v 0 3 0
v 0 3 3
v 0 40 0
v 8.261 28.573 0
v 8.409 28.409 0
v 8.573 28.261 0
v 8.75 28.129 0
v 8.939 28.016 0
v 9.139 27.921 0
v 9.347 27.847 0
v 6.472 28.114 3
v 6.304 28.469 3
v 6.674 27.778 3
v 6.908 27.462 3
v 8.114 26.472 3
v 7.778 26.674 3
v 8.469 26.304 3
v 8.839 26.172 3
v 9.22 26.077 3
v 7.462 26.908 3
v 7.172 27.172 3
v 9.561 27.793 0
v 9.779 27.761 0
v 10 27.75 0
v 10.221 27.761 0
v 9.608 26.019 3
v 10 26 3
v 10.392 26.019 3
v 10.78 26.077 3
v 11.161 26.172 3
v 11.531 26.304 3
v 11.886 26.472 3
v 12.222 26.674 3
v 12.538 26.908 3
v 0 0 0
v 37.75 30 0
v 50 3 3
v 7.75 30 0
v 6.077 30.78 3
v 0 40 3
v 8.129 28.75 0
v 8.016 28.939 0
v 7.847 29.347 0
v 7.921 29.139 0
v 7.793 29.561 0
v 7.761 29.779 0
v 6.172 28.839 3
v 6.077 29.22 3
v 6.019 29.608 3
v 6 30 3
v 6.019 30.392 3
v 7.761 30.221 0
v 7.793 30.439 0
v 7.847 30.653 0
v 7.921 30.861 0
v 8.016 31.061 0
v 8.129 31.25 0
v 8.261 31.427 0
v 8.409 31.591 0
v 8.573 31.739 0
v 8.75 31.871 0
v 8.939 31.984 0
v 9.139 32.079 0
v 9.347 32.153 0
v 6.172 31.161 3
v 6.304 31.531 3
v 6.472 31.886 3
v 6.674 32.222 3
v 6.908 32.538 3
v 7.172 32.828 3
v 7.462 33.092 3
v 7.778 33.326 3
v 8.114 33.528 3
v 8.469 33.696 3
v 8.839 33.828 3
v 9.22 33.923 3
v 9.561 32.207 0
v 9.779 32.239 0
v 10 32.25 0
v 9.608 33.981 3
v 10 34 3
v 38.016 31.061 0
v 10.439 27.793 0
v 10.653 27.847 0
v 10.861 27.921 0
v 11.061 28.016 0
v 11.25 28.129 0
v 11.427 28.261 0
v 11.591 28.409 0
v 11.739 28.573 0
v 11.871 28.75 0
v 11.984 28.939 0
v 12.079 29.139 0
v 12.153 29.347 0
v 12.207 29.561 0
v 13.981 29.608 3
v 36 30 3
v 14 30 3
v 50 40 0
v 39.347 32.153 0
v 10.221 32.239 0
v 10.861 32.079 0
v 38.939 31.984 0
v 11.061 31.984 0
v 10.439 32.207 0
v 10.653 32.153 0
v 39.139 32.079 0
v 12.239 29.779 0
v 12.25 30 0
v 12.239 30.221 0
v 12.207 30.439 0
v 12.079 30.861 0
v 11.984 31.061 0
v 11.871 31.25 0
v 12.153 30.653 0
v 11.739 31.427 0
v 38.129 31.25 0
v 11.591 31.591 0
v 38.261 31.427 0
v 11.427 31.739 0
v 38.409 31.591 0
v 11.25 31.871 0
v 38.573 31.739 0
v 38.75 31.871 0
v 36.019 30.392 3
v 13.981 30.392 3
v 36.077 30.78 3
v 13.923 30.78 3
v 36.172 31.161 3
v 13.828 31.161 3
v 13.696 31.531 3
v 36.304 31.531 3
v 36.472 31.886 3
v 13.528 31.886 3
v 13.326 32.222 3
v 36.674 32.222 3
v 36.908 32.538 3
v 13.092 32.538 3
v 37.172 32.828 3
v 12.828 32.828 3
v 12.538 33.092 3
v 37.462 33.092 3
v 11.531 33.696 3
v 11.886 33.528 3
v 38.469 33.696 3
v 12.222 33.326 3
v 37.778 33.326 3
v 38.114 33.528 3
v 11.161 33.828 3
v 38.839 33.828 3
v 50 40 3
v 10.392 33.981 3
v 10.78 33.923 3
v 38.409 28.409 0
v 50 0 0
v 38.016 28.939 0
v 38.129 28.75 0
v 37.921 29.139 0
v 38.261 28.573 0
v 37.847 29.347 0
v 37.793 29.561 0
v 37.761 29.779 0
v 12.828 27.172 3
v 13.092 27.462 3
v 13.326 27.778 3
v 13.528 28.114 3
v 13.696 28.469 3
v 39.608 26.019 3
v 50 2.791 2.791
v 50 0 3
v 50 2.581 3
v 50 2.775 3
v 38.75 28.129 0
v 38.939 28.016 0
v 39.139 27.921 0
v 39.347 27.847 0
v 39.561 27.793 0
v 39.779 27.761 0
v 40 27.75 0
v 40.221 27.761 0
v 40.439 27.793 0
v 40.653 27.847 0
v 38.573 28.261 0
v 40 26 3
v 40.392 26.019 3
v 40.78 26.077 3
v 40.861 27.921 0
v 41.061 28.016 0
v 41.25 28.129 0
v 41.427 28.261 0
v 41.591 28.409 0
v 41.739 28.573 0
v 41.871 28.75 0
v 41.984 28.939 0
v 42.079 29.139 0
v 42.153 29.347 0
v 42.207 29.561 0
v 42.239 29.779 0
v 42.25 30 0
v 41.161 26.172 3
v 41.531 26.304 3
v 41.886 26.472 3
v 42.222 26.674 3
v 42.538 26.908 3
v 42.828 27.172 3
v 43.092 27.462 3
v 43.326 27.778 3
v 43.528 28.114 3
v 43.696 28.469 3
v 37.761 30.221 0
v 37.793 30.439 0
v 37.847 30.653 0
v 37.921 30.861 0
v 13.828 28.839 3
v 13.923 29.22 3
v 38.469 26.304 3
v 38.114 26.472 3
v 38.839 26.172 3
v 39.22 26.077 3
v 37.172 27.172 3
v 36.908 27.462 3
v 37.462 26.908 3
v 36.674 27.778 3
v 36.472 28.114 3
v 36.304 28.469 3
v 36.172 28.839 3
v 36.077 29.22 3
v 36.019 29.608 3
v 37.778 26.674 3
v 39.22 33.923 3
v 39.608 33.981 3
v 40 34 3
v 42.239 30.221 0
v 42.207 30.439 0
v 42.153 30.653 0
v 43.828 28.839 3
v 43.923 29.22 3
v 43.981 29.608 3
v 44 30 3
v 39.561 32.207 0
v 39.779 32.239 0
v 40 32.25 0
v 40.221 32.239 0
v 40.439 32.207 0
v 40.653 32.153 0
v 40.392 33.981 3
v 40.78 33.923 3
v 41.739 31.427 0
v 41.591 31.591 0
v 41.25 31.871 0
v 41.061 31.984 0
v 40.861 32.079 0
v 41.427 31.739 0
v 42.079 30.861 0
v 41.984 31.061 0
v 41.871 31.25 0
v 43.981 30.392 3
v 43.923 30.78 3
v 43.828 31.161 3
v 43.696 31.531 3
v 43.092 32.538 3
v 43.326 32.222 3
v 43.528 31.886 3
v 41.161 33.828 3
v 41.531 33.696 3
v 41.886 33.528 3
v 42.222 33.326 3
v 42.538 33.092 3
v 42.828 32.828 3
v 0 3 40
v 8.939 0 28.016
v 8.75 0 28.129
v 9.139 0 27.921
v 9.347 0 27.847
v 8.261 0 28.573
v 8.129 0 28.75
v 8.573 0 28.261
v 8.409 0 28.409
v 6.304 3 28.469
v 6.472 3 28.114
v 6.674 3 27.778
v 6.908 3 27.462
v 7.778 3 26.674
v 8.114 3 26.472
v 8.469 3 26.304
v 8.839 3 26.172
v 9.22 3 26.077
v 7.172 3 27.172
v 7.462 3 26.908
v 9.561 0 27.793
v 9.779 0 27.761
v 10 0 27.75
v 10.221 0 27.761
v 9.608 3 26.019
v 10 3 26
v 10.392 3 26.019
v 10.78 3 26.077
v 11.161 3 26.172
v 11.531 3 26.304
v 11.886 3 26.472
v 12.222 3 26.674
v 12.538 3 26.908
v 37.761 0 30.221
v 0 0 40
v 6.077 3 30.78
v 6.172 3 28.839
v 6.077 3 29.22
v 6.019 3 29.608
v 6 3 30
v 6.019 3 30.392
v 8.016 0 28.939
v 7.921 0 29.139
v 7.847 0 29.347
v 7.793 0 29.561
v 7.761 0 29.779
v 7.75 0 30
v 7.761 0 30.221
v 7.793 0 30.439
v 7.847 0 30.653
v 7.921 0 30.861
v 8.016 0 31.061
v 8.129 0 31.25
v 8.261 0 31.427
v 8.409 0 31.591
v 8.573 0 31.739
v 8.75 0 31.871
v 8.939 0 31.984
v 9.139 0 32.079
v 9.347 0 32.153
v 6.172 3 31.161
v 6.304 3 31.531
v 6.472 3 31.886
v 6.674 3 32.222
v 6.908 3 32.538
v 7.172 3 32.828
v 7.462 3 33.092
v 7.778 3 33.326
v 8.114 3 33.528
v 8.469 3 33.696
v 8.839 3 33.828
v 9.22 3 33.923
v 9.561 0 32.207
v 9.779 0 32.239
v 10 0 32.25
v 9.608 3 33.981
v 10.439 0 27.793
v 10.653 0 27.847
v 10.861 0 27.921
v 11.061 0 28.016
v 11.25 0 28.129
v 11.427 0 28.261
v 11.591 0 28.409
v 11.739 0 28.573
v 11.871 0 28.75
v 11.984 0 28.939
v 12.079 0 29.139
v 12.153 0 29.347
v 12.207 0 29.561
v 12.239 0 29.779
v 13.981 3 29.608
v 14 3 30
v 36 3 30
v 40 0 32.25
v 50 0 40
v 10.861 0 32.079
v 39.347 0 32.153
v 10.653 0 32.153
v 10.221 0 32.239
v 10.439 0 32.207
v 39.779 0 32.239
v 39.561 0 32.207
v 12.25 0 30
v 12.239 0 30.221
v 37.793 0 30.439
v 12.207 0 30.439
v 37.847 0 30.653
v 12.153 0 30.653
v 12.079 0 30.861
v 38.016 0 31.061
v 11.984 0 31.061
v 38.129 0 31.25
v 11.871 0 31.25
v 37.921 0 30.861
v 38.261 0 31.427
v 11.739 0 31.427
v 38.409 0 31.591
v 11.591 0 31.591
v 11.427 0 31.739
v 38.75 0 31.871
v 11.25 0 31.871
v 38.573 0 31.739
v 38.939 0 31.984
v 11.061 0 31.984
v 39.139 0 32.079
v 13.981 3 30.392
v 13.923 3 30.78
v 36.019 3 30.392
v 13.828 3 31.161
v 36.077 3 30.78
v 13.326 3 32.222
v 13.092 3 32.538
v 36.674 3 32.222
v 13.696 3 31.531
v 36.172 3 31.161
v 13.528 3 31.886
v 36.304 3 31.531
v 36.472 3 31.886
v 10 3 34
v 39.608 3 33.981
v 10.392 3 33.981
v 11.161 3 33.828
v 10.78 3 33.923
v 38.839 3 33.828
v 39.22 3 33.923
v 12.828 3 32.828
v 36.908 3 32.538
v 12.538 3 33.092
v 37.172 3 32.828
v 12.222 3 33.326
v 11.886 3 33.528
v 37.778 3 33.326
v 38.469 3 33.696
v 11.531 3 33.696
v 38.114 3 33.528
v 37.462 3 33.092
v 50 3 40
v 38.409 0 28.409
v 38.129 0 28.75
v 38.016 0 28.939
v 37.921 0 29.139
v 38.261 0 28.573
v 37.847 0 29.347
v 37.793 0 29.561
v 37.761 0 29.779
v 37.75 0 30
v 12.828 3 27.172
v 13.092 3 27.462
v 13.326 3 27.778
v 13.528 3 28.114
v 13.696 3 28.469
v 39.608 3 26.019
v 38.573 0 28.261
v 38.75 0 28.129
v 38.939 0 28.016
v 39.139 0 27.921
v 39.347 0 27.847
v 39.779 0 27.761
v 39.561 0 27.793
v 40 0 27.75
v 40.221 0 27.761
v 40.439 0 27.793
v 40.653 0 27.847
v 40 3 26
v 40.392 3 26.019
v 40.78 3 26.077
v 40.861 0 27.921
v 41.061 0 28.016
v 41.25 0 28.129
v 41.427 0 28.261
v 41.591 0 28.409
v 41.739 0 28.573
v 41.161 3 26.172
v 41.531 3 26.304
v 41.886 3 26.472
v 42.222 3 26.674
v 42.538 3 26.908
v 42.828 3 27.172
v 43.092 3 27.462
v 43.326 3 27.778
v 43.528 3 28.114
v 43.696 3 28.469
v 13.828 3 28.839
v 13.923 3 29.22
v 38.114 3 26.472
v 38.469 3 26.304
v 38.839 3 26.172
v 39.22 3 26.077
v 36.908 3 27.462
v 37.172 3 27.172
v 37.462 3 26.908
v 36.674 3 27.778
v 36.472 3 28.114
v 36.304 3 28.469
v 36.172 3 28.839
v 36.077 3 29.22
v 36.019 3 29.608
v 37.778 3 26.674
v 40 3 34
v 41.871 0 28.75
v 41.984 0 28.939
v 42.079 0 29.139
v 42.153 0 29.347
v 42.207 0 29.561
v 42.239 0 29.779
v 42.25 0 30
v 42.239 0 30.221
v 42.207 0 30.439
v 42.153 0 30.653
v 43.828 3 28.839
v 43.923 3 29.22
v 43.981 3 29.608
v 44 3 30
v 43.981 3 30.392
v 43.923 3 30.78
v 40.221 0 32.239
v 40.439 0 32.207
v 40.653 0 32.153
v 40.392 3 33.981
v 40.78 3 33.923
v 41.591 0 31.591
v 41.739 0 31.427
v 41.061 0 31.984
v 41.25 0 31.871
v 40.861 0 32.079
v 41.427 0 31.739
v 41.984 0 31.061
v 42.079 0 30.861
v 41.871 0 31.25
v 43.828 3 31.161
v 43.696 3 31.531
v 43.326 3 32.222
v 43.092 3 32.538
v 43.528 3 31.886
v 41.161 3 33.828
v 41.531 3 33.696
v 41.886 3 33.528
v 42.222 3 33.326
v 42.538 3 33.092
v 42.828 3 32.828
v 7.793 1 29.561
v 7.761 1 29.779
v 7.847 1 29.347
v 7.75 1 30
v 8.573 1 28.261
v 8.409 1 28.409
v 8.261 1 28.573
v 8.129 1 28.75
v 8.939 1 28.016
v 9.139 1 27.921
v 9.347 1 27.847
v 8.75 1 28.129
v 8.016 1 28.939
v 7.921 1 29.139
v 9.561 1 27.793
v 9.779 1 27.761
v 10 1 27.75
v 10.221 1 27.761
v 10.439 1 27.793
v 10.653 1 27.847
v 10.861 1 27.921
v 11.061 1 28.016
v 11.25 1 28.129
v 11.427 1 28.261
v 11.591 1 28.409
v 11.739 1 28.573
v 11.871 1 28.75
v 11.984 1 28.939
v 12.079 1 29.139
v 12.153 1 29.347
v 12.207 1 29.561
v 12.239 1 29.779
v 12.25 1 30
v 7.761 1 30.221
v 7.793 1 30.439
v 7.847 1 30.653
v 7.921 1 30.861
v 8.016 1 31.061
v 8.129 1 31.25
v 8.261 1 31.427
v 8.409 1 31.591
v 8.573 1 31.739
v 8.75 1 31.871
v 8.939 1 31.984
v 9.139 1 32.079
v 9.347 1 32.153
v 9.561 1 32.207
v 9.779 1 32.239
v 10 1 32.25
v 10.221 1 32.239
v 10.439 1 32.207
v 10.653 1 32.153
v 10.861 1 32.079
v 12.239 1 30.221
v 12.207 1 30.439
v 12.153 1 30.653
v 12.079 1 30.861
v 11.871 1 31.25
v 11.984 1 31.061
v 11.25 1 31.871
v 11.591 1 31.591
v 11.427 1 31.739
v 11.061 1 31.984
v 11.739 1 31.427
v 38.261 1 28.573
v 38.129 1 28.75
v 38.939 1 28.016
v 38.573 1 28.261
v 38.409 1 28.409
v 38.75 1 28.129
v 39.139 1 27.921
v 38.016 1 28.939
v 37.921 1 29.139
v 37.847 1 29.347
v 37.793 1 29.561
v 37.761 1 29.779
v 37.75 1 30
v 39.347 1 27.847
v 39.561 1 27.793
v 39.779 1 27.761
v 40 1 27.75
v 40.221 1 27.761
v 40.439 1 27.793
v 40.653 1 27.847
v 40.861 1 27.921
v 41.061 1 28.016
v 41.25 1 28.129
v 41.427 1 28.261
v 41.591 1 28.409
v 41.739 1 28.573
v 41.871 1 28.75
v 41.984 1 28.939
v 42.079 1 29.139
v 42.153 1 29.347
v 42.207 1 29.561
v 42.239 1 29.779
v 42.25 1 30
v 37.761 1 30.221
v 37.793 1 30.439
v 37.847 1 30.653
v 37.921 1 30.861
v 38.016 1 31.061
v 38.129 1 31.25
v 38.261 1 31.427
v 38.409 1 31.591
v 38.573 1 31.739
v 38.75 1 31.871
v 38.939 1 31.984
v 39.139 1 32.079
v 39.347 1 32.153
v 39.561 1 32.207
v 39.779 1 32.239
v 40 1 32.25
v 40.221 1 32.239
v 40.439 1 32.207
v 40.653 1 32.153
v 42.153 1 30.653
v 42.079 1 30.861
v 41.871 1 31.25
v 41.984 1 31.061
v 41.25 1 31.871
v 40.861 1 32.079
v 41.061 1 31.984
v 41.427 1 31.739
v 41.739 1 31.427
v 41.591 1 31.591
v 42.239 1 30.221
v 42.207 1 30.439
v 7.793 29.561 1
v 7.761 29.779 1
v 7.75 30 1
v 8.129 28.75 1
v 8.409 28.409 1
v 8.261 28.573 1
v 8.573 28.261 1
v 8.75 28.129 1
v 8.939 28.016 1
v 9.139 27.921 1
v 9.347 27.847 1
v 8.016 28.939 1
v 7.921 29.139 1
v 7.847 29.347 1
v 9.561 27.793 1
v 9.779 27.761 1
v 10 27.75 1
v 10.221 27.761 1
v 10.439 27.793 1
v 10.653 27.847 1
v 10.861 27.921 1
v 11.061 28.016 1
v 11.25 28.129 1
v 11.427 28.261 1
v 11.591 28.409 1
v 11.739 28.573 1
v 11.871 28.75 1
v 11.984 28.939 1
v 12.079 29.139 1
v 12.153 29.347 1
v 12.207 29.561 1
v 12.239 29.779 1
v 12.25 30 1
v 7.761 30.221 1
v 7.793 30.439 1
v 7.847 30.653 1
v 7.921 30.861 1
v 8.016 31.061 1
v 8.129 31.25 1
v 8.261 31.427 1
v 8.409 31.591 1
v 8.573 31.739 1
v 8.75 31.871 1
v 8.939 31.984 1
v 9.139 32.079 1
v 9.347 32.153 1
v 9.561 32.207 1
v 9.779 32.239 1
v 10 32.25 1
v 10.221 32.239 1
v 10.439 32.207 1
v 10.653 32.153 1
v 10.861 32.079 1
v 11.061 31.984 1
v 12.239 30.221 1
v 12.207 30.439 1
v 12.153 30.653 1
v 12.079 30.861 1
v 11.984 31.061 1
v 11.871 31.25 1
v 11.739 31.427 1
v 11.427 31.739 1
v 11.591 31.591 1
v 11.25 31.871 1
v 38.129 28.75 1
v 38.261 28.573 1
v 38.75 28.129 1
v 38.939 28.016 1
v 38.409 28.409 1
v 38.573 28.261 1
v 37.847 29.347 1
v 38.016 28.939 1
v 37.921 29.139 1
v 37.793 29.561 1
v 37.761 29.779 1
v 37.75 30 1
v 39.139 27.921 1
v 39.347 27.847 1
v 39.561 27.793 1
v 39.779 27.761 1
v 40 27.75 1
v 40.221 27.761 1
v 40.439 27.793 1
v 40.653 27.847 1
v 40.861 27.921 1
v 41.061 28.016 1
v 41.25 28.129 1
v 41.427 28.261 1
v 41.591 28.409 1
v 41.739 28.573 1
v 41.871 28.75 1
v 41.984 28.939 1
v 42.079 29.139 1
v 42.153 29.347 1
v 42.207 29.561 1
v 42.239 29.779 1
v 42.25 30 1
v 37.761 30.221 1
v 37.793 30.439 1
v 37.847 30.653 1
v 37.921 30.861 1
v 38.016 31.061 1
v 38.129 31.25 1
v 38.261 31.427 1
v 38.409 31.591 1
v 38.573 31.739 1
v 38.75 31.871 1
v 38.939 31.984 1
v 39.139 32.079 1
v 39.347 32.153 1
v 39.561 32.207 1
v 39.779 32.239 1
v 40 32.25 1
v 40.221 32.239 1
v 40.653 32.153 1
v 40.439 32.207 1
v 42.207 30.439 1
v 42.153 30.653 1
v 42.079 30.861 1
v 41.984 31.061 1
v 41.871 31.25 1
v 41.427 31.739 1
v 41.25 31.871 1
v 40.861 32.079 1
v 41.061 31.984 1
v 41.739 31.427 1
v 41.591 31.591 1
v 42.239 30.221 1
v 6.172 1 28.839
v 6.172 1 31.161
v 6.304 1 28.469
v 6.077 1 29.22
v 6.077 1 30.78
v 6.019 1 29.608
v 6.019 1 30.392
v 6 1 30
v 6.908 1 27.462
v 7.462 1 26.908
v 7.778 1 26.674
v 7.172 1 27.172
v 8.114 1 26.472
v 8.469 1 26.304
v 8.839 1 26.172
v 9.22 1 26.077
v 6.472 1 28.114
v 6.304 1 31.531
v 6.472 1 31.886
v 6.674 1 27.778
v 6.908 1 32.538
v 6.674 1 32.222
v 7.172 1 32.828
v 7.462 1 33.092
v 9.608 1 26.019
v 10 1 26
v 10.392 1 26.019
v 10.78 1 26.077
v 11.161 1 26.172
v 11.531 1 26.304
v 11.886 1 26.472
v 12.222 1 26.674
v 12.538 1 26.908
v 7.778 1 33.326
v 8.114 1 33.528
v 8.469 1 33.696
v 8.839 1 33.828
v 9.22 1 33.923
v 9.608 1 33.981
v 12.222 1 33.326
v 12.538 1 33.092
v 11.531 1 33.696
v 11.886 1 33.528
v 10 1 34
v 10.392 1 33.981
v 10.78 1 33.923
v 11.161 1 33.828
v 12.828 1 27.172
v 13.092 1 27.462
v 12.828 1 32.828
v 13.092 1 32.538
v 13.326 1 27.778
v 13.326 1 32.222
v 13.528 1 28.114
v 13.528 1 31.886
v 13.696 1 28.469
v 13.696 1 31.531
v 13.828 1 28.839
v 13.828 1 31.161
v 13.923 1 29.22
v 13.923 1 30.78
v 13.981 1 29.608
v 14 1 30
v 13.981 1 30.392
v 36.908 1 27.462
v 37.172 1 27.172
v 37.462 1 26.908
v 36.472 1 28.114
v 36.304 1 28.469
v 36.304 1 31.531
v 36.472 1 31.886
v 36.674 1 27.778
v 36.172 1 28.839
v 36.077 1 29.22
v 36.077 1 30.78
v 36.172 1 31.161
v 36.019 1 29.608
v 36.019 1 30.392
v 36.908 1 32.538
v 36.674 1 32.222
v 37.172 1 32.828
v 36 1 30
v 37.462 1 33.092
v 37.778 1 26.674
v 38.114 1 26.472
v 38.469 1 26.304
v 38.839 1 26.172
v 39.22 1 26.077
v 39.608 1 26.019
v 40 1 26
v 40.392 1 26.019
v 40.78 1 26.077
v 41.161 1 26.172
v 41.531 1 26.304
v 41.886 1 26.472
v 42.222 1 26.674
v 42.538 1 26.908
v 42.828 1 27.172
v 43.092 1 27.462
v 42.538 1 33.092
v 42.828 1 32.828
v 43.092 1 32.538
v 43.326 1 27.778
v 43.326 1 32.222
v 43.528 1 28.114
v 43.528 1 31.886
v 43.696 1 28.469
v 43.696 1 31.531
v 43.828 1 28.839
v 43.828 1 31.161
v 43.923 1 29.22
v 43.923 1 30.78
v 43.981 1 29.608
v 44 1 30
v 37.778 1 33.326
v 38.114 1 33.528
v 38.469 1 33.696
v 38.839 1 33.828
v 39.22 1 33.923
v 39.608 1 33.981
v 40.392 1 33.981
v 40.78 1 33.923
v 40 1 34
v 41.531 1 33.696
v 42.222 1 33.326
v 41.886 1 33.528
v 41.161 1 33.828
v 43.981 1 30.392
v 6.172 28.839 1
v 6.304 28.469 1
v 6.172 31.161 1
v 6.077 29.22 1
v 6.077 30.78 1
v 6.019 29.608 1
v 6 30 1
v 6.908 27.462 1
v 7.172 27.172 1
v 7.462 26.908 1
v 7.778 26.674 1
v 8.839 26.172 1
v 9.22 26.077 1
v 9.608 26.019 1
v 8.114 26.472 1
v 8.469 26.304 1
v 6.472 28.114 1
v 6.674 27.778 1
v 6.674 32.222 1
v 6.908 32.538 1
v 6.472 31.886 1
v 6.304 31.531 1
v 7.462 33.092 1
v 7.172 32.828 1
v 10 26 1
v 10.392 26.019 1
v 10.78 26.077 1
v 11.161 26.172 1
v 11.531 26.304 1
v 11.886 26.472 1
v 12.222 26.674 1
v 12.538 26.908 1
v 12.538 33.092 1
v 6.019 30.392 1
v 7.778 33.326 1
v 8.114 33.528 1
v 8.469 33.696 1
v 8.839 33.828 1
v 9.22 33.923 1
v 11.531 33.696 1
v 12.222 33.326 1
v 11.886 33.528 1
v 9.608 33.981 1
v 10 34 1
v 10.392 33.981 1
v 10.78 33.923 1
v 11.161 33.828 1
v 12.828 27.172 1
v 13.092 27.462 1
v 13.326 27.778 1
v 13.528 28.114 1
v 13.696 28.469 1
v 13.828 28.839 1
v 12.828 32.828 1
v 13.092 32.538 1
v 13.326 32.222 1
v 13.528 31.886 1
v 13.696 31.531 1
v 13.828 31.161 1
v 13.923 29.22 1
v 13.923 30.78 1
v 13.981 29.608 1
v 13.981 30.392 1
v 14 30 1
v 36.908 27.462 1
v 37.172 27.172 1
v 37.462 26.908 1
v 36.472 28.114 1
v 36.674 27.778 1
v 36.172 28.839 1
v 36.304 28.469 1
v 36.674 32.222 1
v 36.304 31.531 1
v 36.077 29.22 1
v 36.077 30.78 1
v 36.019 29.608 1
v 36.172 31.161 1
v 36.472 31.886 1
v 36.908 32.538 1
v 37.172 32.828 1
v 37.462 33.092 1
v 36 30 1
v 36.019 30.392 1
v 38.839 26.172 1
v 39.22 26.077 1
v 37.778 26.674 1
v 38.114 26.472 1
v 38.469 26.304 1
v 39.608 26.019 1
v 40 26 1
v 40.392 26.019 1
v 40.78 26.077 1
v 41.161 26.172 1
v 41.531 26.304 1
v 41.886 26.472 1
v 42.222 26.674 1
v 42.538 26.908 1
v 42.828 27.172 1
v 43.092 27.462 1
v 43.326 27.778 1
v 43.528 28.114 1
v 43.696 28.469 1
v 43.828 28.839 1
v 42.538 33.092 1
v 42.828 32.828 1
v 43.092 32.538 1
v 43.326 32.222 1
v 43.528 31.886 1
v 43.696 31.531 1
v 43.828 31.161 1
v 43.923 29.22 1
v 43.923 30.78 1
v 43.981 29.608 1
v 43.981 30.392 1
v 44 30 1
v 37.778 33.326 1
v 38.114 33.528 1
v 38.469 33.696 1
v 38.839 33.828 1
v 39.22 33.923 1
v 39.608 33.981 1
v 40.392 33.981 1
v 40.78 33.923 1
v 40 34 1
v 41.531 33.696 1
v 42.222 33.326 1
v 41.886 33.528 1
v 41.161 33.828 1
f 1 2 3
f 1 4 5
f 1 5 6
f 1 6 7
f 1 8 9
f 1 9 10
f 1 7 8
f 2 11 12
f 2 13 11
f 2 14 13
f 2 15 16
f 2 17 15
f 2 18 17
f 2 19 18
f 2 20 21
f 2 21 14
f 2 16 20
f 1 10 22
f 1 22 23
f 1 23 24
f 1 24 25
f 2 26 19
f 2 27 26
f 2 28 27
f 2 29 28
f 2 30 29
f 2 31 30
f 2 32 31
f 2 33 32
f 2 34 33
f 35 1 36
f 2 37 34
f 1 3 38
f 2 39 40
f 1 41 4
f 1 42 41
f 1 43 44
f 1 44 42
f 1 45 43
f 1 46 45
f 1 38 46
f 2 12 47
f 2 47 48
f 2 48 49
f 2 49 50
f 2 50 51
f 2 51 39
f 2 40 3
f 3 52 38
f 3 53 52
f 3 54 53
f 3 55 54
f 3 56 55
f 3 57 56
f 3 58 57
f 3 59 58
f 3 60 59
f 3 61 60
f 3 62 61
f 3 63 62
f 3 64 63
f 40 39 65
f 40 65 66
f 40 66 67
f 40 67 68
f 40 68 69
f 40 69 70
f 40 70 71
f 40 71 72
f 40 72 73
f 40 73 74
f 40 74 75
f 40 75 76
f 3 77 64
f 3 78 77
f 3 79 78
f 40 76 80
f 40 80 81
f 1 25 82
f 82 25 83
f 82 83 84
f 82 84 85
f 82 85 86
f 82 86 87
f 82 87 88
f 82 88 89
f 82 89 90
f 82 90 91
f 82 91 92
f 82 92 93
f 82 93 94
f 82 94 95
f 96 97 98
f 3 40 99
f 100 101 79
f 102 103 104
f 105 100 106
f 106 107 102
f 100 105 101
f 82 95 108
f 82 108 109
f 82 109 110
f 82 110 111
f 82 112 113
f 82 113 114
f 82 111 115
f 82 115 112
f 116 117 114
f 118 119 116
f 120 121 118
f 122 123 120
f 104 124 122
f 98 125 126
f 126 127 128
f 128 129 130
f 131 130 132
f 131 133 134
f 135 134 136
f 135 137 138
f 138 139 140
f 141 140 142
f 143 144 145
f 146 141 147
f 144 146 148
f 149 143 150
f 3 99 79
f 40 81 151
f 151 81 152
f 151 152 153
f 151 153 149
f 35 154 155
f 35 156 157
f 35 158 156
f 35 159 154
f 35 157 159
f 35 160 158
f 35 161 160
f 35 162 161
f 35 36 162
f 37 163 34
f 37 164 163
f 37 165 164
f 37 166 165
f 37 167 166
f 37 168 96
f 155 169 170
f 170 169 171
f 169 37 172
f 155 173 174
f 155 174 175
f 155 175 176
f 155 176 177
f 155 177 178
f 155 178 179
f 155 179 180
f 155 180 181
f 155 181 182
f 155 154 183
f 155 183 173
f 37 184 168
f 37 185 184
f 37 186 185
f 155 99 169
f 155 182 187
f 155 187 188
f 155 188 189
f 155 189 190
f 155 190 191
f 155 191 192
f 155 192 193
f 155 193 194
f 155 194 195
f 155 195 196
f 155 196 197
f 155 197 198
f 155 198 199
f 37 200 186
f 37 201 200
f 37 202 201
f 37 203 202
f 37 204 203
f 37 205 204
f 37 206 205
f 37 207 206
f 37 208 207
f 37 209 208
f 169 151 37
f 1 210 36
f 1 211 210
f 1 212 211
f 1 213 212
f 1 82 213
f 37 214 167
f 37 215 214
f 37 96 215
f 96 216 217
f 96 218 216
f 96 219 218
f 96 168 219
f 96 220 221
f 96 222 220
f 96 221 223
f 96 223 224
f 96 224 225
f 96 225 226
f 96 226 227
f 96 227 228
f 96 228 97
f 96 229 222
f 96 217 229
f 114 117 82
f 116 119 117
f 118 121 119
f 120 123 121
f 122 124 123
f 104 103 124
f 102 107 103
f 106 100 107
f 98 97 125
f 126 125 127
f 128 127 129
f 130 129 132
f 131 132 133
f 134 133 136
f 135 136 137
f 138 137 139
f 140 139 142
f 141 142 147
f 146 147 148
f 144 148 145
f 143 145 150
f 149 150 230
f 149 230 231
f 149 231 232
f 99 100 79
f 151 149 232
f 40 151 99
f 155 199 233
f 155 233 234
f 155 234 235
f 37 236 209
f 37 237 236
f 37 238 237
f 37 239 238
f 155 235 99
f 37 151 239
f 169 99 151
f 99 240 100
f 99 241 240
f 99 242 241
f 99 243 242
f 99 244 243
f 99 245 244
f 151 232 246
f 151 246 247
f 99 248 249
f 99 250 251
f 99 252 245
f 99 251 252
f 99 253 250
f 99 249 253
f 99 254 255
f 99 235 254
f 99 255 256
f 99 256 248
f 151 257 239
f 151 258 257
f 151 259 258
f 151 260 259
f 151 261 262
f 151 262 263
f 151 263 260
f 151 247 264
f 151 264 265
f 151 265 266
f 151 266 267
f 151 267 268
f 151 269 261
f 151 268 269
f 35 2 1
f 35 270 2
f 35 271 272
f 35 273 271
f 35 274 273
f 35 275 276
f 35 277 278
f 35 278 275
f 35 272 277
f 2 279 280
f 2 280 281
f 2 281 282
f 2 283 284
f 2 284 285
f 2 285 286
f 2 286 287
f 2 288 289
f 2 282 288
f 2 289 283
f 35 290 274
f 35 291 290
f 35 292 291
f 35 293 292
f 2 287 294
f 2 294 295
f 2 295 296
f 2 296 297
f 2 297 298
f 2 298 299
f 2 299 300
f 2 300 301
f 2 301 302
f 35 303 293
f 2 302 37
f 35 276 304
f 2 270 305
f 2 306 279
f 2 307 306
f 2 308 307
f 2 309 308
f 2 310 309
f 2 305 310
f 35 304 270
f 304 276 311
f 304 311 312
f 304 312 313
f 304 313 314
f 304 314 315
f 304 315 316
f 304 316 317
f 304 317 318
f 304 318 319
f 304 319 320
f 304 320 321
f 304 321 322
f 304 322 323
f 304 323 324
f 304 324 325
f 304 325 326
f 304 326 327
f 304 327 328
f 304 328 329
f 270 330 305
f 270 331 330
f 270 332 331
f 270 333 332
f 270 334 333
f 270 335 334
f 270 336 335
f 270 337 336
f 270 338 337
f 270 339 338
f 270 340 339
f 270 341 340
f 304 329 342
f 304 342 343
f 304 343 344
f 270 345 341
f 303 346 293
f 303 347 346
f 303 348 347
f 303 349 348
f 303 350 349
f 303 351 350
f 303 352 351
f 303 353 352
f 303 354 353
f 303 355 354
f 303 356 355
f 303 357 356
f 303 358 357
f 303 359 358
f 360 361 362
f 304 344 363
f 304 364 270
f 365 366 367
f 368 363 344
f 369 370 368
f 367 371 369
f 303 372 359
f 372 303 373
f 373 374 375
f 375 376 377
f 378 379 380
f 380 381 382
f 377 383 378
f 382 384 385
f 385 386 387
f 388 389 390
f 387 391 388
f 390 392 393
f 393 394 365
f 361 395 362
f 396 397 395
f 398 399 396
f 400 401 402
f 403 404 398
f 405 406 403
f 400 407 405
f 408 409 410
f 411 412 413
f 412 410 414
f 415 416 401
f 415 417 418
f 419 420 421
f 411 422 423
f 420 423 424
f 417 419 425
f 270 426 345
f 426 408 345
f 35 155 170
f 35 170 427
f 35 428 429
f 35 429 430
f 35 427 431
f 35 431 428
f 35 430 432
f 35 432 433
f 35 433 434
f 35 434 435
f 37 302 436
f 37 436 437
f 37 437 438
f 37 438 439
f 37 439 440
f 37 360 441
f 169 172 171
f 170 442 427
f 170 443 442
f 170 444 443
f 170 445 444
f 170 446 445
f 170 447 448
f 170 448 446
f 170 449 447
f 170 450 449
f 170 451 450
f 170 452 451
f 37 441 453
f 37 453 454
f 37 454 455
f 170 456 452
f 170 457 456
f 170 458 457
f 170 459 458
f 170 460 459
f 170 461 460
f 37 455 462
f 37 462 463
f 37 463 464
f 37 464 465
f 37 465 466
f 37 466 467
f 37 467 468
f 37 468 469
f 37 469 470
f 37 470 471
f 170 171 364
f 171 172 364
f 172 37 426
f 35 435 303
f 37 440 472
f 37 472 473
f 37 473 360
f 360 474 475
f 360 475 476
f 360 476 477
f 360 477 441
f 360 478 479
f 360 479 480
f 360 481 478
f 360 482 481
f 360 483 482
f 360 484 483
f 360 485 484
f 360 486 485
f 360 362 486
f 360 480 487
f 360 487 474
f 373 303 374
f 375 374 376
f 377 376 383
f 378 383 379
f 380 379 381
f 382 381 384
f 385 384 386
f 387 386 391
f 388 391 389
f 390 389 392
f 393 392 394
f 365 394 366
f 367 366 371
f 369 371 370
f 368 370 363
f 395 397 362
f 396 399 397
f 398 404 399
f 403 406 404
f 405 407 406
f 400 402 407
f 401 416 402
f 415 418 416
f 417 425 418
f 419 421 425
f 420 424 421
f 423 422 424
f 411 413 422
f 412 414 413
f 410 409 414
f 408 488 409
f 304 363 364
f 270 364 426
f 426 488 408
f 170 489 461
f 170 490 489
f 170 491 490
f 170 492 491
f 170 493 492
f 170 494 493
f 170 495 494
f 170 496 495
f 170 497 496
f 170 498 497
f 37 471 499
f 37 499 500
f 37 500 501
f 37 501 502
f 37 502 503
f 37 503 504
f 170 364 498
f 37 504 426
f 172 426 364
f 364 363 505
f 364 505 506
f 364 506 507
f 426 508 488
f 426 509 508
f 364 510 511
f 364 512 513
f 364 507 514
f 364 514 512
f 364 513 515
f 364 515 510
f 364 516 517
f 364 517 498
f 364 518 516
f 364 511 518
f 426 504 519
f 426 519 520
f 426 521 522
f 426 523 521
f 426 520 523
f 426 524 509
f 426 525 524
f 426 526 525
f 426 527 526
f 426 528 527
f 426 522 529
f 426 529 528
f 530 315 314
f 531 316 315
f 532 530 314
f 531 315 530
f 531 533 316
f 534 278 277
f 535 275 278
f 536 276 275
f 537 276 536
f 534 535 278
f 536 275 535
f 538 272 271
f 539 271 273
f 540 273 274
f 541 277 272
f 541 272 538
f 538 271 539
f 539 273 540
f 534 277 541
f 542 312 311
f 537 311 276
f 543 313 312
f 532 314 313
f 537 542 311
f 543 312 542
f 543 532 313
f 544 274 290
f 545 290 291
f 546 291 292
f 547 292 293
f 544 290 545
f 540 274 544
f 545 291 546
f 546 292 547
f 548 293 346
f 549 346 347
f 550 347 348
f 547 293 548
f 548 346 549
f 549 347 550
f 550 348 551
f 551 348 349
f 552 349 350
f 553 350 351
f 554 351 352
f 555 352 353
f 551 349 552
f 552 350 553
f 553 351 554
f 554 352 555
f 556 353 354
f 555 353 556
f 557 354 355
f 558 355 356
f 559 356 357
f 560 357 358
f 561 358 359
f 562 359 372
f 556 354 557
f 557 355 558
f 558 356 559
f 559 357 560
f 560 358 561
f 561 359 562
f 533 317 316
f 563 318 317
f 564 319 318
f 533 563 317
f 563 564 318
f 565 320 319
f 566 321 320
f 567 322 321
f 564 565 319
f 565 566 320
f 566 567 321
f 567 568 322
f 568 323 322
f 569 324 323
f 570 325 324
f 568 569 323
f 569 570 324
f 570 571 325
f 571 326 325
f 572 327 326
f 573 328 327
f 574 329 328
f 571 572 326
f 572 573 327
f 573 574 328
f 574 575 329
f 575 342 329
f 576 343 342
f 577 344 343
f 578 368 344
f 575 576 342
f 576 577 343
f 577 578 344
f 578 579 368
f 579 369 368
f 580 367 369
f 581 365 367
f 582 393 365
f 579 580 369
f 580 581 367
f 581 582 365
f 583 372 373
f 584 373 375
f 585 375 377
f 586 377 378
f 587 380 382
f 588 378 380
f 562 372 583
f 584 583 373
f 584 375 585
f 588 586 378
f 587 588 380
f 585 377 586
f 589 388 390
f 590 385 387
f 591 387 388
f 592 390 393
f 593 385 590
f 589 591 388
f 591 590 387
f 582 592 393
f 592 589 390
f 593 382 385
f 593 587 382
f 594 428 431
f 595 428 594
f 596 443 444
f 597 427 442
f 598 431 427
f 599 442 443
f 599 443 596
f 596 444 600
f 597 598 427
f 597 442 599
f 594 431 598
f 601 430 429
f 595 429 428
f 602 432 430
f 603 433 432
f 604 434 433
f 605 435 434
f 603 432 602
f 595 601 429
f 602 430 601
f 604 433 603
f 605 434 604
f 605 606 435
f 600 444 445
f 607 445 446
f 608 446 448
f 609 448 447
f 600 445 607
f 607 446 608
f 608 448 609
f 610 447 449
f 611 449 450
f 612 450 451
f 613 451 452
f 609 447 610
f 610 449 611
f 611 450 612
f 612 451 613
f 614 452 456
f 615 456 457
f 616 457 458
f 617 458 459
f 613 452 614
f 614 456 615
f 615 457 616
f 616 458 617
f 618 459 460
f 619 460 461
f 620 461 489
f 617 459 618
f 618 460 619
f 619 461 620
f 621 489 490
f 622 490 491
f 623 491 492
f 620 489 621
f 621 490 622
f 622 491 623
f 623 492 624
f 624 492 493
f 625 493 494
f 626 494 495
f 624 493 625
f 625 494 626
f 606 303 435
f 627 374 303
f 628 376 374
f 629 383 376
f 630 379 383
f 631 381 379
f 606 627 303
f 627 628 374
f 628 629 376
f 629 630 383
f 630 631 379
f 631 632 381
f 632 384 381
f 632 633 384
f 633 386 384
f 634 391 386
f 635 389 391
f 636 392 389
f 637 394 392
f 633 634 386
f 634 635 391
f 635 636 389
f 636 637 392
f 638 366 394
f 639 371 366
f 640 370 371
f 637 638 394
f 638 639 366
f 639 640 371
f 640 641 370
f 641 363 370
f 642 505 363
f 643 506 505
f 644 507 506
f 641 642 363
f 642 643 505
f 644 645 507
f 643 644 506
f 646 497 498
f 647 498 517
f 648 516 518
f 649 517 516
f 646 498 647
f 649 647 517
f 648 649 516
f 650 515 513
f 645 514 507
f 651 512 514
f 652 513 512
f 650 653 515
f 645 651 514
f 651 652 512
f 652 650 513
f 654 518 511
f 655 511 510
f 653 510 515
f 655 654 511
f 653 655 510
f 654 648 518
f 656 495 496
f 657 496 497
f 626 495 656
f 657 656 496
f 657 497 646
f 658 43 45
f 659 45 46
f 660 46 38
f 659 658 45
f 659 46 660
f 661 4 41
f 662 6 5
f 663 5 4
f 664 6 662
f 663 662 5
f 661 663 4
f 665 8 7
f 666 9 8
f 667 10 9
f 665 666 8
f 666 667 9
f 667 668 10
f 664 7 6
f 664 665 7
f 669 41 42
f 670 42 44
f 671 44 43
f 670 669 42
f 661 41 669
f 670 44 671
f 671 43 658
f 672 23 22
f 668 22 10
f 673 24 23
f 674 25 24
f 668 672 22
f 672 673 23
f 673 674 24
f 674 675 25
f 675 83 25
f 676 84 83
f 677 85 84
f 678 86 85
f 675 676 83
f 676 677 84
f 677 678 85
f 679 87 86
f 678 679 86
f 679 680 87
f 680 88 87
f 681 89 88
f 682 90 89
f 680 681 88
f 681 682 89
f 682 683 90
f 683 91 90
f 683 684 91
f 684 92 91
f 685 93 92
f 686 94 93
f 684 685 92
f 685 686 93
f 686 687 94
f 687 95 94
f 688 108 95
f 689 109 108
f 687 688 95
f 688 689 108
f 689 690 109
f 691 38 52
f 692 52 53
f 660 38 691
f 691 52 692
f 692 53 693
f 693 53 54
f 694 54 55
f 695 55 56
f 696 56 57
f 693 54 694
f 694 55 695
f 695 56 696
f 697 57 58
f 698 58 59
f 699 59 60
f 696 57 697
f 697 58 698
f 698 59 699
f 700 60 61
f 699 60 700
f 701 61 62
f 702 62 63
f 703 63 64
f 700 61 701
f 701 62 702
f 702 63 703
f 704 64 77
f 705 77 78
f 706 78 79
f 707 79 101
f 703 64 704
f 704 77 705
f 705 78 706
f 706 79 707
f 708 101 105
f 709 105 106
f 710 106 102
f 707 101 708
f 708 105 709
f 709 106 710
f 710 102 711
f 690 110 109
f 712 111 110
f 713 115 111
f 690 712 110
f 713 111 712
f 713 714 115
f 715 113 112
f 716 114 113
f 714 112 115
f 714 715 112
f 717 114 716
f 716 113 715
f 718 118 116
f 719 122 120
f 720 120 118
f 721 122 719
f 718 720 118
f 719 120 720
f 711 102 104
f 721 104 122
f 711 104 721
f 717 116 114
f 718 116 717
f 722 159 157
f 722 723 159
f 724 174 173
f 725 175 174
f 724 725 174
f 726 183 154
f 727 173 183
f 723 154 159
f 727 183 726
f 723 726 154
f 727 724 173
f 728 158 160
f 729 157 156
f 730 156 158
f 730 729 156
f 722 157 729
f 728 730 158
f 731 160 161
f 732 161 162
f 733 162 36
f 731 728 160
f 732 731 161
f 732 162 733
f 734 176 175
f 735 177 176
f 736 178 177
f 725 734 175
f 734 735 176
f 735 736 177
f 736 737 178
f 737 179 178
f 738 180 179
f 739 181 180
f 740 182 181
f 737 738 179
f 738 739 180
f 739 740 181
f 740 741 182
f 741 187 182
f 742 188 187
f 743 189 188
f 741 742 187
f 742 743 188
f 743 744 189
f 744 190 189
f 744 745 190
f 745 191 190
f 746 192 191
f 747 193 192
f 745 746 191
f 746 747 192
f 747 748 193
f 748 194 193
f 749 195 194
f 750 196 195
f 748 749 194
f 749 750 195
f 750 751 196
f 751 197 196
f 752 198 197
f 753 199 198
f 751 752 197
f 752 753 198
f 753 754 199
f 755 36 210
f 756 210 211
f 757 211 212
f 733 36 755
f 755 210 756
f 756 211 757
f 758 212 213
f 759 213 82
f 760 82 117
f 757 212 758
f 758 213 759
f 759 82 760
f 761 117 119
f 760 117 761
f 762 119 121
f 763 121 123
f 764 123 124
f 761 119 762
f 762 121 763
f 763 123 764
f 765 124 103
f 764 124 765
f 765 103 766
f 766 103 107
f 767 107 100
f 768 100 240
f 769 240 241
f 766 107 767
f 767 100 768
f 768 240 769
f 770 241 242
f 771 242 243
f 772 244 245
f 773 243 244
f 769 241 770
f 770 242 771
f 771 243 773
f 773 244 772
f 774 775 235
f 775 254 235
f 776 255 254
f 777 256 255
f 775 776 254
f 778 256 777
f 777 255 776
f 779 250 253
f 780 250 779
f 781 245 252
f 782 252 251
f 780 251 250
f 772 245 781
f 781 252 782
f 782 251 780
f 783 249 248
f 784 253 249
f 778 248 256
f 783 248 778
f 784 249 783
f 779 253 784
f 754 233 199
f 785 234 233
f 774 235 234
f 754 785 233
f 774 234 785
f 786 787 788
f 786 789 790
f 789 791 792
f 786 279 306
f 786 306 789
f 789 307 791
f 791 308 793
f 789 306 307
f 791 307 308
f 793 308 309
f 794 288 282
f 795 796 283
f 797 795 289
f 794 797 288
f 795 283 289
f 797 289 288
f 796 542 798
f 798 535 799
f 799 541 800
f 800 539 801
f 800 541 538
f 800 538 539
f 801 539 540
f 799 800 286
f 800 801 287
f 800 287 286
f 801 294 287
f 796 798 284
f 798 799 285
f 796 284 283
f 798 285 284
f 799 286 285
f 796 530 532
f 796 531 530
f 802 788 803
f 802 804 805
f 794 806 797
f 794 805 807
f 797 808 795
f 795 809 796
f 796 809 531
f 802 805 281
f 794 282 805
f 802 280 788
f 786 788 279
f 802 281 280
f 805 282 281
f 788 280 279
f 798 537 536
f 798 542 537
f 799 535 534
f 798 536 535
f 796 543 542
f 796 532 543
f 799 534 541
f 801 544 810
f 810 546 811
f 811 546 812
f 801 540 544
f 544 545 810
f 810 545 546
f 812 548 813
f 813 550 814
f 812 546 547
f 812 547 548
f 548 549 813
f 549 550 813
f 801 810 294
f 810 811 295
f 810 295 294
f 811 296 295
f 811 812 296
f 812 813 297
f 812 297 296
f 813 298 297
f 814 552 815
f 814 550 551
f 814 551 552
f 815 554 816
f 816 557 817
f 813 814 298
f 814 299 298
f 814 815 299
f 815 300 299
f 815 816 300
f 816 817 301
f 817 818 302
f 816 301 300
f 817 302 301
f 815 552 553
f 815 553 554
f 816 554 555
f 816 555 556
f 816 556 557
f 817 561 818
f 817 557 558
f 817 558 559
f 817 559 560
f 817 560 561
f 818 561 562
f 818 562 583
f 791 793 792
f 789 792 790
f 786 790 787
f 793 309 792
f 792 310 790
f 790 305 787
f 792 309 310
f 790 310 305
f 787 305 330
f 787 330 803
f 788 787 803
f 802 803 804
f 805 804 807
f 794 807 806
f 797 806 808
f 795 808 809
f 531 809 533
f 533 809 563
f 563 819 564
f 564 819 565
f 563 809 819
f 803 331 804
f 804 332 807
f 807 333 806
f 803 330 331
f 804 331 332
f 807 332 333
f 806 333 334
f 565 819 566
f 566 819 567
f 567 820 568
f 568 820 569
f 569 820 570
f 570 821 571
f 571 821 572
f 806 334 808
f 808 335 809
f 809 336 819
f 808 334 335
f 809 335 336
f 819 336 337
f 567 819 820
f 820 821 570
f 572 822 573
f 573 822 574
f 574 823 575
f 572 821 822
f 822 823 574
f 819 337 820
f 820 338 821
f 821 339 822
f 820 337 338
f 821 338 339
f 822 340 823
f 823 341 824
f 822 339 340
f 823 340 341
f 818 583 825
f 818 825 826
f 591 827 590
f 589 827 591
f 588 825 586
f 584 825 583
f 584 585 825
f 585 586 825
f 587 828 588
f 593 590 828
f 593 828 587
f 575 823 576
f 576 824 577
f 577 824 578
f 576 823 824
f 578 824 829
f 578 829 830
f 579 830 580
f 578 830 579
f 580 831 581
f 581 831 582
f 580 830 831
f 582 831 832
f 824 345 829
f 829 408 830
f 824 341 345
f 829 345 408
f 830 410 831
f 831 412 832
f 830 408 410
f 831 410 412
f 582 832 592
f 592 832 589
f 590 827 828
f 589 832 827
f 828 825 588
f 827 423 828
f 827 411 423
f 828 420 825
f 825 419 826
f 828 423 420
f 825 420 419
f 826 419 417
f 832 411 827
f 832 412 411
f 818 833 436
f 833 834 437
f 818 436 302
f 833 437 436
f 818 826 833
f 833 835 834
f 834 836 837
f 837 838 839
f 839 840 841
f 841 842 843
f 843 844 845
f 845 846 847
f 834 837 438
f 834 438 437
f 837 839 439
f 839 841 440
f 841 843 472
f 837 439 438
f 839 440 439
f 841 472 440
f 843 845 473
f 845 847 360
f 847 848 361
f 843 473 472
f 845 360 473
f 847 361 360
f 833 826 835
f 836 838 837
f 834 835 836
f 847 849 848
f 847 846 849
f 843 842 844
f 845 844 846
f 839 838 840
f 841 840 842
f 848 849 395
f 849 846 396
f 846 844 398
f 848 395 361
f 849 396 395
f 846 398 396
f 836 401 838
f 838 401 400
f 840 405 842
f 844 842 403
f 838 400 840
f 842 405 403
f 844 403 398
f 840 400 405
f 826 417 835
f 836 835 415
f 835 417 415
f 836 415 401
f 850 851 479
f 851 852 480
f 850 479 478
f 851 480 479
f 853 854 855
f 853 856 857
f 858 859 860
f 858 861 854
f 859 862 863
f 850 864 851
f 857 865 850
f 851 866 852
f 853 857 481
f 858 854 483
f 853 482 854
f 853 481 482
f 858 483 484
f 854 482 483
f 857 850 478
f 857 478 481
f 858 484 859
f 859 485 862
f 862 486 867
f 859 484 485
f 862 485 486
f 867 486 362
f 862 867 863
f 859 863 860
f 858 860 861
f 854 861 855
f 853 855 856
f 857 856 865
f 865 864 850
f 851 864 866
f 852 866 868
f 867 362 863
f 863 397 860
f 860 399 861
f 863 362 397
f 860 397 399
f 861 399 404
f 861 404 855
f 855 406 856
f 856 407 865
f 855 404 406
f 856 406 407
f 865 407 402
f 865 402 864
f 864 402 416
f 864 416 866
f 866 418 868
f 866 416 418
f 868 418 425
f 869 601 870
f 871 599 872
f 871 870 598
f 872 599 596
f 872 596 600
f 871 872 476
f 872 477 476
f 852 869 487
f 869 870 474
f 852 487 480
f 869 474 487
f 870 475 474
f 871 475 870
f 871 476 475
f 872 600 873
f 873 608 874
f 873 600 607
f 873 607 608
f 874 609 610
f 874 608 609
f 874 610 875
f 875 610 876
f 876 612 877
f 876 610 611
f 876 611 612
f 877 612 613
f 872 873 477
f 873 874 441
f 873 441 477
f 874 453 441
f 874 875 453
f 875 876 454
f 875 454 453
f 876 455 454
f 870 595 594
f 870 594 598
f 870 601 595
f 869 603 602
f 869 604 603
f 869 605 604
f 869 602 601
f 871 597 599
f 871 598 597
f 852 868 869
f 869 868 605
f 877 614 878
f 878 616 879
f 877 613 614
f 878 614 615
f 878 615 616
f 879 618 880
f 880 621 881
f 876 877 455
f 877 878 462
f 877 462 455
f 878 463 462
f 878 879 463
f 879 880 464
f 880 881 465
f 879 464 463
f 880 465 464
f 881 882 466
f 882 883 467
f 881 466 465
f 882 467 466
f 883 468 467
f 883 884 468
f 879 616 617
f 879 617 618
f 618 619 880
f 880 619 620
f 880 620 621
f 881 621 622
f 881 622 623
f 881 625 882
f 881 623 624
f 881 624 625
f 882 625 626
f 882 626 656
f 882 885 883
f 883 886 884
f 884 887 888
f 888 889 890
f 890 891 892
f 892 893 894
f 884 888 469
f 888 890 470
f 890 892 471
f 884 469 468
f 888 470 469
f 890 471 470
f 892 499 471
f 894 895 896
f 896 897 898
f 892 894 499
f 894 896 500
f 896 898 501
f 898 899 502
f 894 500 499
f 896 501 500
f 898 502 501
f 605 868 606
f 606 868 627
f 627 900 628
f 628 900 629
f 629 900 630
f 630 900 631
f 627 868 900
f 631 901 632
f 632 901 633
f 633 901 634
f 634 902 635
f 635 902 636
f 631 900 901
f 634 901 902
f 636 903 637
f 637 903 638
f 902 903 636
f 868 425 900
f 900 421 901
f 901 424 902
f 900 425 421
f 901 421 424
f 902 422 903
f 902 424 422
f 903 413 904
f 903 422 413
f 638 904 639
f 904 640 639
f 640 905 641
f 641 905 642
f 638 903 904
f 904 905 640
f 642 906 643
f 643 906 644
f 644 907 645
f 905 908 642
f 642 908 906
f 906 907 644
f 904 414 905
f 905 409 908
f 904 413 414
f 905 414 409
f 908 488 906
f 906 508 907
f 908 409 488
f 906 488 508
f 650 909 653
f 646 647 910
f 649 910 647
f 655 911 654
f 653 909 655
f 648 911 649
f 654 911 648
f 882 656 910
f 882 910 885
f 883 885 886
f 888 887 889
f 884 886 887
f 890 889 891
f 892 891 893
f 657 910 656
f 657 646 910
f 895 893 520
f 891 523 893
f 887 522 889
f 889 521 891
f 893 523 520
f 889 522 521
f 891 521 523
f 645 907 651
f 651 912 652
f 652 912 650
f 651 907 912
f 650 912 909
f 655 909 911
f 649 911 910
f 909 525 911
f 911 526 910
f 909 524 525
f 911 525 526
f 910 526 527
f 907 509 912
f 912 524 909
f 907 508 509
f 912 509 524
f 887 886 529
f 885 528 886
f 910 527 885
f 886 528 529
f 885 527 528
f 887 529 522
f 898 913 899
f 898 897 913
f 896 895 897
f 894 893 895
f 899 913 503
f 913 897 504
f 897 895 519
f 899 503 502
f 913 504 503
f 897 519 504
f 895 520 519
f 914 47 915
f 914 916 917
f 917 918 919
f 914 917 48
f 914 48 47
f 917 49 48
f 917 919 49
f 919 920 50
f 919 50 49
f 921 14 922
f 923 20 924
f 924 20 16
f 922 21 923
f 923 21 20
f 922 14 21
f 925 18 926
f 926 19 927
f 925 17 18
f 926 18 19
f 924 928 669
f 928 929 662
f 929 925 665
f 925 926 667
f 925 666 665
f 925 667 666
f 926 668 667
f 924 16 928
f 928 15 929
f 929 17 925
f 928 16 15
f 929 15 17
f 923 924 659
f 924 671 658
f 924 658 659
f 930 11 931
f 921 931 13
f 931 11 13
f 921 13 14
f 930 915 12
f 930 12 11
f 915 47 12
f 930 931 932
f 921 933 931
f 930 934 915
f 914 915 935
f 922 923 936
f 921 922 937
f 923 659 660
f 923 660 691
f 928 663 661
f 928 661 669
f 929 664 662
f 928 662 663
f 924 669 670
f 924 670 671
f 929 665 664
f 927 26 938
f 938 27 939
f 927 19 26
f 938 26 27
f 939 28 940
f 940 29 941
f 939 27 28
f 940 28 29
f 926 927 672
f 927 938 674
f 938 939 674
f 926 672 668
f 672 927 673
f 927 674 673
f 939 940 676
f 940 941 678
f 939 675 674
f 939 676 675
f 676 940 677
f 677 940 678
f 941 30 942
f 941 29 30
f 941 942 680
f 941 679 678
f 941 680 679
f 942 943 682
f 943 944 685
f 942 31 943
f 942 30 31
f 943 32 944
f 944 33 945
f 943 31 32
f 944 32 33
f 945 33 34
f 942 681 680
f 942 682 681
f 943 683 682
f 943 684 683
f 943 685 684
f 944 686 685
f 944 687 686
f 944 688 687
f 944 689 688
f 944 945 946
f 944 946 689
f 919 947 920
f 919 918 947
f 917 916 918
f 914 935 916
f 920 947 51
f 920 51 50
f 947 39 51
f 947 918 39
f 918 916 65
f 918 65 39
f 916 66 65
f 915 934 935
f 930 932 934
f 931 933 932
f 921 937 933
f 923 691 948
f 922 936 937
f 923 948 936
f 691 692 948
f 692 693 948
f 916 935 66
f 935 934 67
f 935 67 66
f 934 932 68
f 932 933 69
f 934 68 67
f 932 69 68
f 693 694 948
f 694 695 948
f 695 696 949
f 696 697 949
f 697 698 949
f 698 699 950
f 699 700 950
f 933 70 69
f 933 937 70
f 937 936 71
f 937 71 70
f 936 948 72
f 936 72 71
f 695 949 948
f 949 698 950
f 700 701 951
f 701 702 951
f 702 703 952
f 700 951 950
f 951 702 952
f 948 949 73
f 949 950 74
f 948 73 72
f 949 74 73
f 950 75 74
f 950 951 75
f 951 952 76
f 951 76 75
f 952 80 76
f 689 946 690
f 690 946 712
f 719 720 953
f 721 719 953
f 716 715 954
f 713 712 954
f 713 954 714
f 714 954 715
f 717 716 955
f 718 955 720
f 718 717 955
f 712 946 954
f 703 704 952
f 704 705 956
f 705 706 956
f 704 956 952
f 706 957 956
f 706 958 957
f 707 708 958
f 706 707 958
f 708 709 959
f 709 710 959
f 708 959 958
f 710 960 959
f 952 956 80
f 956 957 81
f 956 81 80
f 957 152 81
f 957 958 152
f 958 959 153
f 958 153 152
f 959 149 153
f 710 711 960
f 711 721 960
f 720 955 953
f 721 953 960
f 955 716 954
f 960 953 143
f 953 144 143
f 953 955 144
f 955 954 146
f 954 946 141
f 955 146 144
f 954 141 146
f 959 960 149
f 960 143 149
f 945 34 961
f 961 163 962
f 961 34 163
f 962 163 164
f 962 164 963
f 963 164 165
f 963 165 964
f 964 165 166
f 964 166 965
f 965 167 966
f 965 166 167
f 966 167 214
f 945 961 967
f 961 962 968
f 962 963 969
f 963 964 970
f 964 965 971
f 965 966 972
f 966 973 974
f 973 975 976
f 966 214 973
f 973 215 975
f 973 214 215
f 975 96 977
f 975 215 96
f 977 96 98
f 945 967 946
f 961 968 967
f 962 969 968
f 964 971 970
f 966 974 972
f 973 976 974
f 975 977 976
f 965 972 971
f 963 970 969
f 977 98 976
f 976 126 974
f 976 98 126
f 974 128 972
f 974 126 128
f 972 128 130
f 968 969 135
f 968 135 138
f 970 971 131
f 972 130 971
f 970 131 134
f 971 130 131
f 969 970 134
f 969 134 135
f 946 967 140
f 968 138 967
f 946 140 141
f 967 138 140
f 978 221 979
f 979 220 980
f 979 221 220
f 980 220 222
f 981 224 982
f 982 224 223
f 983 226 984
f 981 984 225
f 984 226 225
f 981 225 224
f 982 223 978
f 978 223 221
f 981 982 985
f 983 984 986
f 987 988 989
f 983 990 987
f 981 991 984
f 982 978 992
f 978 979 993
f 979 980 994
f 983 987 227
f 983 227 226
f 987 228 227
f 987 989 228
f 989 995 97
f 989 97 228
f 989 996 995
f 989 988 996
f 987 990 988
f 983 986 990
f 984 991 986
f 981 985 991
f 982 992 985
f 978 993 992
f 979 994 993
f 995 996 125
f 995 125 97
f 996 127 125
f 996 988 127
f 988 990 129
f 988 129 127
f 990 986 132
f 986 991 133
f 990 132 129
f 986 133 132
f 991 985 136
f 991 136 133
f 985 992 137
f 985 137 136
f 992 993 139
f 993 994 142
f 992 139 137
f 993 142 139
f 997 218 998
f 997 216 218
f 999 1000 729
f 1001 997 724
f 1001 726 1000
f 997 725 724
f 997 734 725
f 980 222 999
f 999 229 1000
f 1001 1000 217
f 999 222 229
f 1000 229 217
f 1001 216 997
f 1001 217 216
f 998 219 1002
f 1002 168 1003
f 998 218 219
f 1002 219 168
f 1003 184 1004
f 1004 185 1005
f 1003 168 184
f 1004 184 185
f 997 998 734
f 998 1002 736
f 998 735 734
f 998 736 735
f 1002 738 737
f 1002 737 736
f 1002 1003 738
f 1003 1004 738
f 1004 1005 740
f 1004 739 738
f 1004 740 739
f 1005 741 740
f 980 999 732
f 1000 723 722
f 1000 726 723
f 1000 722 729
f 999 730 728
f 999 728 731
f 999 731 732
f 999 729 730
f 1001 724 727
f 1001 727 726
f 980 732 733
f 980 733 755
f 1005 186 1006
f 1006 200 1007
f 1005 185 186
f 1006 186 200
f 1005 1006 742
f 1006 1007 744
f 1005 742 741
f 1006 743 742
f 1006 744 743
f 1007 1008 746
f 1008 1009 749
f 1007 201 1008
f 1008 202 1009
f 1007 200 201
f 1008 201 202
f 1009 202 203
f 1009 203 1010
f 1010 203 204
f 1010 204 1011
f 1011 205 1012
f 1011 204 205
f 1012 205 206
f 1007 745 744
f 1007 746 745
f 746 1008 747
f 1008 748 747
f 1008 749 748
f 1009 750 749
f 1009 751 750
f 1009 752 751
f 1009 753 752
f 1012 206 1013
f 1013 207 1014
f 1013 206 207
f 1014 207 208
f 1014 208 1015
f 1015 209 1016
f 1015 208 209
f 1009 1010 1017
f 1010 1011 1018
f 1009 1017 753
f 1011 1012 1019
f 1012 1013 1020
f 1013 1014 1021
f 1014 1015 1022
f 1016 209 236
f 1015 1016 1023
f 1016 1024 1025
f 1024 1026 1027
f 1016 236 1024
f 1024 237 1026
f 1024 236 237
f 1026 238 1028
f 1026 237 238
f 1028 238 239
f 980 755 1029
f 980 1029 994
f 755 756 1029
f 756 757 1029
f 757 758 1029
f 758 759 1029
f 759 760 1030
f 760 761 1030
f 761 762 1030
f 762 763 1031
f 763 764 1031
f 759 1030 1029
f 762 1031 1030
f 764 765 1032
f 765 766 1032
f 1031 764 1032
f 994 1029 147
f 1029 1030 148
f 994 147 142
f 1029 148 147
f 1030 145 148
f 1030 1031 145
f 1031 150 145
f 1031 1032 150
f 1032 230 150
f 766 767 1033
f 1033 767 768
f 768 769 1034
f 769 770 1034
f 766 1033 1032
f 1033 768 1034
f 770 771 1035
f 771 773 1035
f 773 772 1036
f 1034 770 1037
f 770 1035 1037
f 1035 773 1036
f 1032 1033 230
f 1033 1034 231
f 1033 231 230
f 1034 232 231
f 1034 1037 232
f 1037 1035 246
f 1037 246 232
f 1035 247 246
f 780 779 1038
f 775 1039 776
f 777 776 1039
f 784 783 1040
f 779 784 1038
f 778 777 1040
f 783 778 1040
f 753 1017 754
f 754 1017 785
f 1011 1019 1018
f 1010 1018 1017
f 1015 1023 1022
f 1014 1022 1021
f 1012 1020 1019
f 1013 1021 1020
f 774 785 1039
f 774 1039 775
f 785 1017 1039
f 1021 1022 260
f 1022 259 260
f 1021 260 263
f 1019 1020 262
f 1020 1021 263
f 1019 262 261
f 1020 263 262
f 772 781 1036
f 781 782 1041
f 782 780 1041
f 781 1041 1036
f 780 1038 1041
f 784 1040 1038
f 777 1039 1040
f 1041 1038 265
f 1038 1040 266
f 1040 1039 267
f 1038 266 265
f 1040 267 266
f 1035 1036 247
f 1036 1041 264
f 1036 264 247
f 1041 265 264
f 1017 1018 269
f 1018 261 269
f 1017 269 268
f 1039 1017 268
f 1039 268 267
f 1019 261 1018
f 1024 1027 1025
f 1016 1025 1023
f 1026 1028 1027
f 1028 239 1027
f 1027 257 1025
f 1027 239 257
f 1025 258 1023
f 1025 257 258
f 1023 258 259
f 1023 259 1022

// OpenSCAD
// L-Bracket with countersunk holes for M4 screws
// Internal corner at origin
// Horizontal flange extends in +Y direction
// Vertical flange extends in +Z direction

$fn = 64;

// ---- Parameters ----
flange_width    = 50;   // X width of both flanges
flange_length   = 40;   // Y depth of horizontal / Z height of vertical
thickness       = 3;    // plate thickness

// M4 countersunk hole parameters
hole_dia        = 4.5;  // through hole diameter
csk_dia         = 8;    // countersink (head seat) diameter
csk_depth       = 2;    // countersink depth

// Hole placement
edge_offset     = 10;   // distance from outer edge to hole center
hole_spacing_x  = 30;   // left-right symmetric spacing along X

// ---- Countersunk hole tool ----
// Bore axis along +Z, csk seat opens toward -Z (outer side).
// Tool is centered at origin in XY, top at z=0.
module countersink_tool(len = 50) {
    union() {
        // through hole
        translate([0, 0, -len/2])
            cylinder(h = len, d = hole_dia, center = true);
        // counterbore / countersink seat opening downward (outer side)
        translate([0, 0, -csk_depth])
            cylinder(h = csk_depth + 0.01, d = csk_dia);
    }
}

// ---- Bracket body ----
module l_bracket() {
    union() {
        // Horizontal flange: footprint X[0..width], Y[0..length], Z[0..thickness]
        cube([flange_width, flange_length, thickness]);

        // Vertical flange: footprint X[0..width], Y[0..thickness], Z[0..length]
        cube([flange_width, thickness, flange_length]);
    }
}

// ---- Assembly ----
difference() {
    l_bracket();

    // --- Holes in horizontal flange ---
    // Outer surface is +Z (top). Bore along -Z, csk seat opens toward +Z.
    // Center line at X = flange_width/2, holes at Y = edge_offset from +Y edge.
    for (dx = [-hole_spacing_x/2, hole_spacing_x/2]) {
        translate([flange_width/2 + dx, flange_length - edge_offset, thickness])
            countersink_tool();
    }

    // --- Holes in vertical flange ---
    // Outer surface is +Y (front). Bore along -Y, csk seat opens toward +Y.
    // Rotate tool so its bore axis points along -Y.
    for (dx = [-hole_spacing_x/2, hole_spacing_x/2]) {
        translate([flange_width/2 + dx, thickness, flange_length - edge_offset])
            rotate([-90, 0, 0])
                countersink_tool();
    }
}
